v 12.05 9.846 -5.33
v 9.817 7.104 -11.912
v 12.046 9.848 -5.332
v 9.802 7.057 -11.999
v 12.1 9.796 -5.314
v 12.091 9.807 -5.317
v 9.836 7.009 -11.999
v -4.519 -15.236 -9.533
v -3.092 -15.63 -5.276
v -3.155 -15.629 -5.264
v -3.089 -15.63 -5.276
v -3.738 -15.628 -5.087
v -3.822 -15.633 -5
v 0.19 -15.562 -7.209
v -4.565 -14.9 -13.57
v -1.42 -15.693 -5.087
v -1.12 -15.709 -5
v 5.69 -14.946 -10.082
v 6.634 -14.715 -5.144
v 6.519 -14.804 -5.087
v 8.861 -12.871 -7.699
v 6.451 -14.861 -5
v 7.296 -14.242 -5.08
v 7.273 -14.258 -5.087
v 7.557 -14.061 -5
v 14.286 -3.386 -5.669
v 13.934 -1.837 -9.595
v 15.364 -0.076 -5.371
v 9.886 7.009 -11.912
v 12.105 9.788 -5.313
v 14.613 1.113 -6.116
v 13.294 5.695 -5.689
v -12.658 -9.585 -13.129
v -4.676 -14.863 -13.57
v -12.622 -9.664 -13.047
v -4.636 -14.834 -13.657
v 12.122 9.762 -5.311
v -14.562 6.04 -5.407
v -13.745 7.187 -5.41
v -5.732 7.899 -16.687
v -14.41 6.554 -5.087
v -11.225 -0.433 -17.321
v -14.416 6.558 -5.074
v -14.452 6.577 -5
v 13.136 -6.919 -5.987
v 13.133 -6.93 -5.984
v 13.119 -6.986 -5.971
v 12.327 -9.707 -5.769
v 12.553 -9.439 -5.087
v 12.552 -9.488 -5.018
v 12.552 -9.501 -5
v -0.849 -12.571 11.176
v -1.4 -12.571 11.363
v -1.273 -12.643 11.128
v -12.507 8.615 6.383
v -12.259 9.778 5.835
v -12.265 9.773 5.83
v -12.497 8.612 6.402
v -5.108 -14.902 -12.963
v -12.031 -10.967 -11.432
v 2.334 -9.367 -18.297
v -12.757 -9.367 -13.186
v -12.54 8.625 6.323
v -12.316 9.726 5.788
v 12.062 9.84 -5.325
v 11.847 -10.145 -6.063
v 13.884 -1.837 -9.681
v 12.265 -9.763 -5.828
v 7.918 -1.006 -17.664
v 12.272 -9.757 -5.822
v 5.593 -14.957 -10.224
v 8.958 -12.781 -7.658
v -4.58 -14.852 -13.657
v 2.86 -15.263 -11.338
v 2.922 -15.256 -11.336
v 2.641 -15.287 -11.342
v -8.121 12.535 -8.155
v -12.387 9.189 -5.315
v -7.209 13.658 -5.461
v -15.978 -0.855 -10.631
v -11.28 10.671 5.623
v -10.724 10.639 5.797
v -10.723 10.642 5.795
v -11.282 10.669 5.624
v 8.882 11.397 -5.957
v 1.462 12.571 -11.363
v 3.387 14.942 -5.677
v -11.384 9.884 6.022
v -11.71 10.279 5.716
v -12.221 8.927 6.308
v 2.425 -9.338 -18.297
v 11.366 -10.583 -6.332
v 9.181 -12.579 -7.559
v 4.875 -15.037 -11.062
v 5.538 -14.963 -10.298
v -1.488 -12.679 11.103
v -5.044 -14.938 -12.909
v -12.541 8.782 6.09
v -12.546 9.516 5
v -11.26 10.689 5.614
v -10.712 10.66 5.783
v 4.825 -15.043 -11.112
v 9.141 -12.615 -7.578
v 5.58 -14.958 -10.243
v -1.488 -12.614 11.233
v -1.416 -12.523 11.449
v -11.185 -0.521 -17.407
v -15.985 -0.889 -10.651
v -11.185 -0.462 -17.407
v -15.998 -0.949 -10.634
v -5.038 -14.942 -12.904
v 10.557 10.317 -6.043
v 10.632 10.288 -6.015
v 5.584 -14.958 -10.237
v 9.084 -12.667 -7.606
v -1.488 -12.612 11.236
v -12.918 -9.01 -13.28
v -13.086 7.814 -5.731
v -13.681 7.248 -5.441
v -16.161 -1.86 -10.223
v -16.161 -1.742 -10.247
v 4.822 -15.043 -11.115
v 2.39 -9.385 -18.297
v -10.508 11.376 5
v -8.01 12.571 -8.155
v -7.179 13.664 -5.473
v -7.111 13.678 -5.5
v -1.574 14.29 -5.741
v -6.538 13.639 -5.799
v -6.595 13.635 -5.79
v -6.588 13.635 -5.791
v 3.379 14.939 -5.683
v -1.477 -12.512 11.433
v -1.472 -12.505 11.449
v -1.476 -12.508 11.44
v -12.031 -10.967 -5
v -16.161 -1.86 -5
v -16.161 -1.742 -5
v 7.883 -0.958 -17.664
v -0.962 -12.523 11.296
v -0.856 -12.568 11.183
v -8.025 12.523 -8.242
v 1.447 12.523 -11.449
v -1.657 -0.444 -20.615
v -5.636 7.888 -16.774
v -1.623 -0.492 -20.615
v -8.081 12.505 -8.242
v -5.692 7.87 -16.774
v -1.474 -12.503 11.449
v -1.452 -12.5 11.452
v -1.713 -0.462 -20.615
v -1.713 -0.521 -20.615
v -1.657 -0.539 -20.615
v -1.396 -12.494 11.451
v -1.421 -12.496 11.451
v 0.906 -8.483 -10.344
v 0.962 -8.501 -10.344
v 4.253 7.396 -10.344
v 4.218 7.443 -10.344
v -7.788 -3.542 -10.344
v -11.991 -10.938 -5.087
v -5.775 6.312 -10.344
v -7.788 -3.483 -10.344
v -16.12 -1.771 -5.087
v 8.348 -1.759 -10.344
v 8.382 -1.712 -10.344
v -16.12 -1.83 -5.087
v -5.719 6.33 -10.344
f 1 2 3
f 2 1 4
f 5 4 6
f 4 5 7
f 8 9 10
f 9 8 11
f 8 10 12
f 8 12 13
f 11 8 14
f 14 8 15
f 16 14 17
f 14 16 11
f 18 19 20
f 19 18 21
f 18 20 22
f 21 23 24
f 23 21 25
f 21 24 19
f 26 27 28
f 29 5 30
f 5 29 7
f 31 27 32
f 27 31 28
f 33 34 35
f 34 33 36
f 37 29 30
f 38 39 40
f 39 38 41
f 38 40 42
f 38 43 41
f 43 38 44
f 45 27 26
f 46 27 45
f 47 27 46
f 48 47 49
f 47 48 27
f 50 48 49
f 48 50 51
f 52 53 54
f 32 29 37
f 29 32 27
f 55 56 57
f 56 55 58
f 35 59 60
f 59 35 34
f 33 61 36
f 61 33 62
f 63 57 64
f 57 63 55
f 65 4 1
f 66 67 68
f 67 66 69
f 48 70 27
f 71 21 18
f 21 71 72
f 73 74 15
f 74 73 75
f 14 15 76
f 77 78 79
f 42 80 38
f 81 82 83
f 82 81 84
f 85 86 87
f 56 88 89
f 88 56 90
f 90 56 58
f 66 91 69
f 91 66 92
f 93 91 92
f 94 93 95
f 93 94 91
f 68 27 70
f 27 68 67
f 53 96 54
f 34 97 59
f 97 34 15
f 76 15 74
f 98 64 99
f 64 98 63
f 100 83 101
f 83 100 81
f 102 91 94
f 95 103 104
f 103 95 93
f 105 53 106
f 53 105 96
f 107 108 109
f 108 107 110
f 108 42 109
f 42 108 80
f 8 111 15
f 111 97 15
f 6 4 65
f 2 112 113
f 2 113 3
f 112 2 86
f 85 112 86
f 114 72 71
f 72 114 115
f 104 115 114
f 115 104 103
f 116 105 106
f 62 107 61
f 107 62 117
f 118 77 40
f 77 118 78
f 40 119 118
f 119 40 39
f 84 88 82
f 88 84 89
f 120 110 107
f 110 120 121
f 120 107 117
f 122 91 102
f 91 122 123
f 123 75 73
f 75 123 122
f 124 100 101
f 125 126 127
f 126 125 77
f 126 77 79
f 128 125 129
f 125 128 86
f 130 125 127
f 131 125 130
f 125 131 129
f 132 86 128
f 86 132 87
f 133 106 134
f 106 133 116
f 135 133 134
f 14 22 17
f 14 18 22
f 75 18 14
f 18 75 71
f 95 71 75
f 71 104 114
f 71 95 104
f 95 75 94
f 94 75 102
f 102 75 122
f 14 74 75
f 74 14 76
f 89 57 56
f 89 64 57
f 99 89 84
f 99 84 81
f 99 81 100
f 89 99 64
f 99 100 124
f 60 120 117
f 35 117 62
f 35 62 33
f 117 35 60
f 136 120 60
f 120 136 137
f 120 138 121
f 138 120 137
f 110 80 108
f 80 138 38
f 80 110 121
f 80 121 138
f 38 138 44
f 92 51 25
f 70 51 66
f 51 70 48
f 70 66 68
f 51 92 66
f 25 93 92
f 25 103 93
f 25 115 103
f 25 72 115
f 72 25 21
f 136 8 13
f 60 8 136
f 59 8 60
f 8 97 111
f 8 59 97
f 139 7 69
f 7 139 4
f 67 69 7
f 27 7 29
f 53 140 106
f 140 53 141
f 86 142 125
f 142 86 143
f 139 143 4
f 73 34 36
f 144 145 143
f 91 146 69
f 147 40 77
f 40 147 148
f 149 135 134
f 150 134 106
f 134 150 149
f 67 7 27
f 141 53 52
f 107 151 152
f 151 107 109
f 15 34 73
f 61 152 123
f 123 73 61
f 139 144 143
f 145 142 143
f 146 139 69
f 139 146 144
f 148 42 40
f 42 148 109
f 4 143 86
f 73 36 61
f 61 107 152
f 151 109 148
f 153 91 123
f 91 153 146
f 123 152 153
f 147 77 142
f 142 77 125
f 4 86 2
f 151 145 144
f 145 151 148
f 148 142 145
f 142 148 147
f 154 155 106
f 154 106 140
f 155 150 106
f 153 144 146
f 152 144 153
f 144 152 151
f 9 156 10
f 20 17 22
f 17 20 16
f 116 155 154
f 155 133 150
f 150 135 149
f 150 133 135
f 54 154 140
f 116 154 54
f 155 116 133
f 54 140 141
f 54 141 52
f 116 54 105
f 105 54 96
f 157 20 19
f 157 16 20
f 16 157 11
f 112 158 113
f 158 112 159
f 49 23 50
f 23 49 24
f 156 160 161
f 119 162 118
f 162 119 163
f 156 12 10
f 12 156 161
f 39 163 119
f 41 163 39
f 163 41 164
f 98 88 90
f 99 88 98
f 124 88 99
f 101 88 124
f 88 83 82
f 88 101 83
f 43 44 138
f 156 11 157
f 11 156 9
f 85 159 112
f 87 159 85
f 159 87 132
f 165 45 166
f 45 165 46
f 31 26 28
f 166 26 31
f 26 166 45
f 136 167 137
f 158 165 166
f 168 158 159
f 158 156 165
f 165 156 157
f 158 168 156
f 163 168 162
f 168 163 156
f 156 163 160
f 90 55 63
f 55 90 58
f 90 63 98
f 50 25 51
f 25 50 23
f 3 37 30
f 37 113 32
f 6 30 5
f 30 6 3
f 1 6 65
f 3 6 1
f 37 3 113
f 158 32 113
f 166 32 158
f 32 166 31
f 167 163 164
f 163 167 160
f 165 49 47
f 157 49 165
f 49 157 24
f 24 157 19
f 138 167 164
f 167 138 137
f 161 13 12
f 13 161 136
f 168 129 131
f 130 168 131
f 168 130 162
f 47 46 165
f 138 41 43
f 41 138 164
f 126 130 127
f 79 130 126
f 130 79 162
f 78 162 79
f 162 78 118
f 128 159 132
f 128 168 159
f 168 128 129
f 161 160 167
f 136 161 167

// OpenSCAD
// Auto-generated OpenSCAD file

    inner_points = 10*[[1.4067368092918164, -0.7994532745154926, 0.4999999999998308], [1.4067368092915926, -0.7994532745156754, -0.5000000000001692], [-1.4067368092915926, 0.7994532745156754, 0.5000000000001692], [-1.4067368092918164, 0.7994532745154926, -0.4999999999998308], [1.6079808299870764, 0.18008786506691687, 0.4999999999996069], [1.6079808299868528, 0.18008786506673424, -0.500000000000393], [0.6681671406727039, -1.4736304356503493, 0.5000000000001192], [0.6681671406724802, -1.473630435650532, -0.4999999999998807], [-0.6681671406724802, 1.473630435650532, 0.4999999999998807], [-0.6681671406727039, 1.4736304356503493, -0.5000000000001192], [-1.6079808299868528, -0.18008786506673424, 0.500000000000393], [-1.6079808299870764, -0.18008786506691687, -0.4999999999996069], [1.1950308268855827, 1.090841561155204, 0.4999999999995332], [1.1950308268853584, 1.0908415611550215, -0.5000000000004668], [-0.3256196655175062, -1.5849308572230525, 0.5000000000003623], [-0.32561966551773036, -1.584930857223235, -0.4999999999996378], [0.32561966551773036, 1.584930857223235, 0.4999999999996378], [0.3256196655175062, 1.5849308572230525, -0.5000000000003623], [-1.1950308268853584, -1.0908415611550215, 0.5000000000004668], [-1.1950308268855827, -1.090841561155204, -0.4999999999995332], [0.9279252557809003, -1.0165539388954856, 1.3506508083520177], [-1.3482227148786563, 0.2769886316881294, 1.3506508083522912], [1.2535449212985186, 0.5683769183276581, 1.3506508083516553], [-0.15319188799318584, 1.3678301928432421, 1.3506508083518245], [-0.6800555742060643, -1.1966418039623115, 1.3506508083524107], [0.8332474622002755, -0.17118838888009527, 1.8763819204710181], [-0.5734893470914291, 0.6282648856354888, 1.8763819204711873], [0.0946777935811629, -0.845365550014952, 1.8763819204713068], [-0.7747333677866893, -0.35127625394692097, 1.8763819204714112], [0.42029745909878125, 0.7395653072081917, 1.8763819204709444], [0.8332474621996254, -0.17118838888062501, -1.0257311121192891], [-0.5734893470920791, 0.6282648856349591, -1.02573111211912], [0.09467779358051293, -0.8453655500154817, -1.0257311121190005], [-0.7747333677873394, -0.3512762539474507, -1.0257311121188961], [0.42029745909813115, 0.739565307207662, -1.0257311121193629]];

    outer_points = 10*[[1.3833782883880748, -0.18366781795367643, -0.9594605946126766], [1.6817061295863125, 0.18366781795367643, -0.078515062948806], [-1.6817061295863125, -0.18366781795367643, 0.078515062948806], [-1.3833782883880748, 0.18366781795367643, 0.9594605946126766], [1.2027457527591328, -1.0682345020066348, -0.5294447012601022], [1.5010735939573705, -0.7008988660992819, 0.35150083040376845], [0.9786317893777532, 0.7008988660992819, -1.191240777118519], [1.276959630575991, 1.0682345020066348, -0.31029524545464815], [-1.276959630575991, -1.0682345020066348, 0.31029524545464815], [-0.9786317893777532, -0.7008988660992819, 1.191240777118519], [-1.5010735939573705, 0.7008988660992819, -0.35150083040376845], [-1.2027457527591328, 1.0682345020066348, 0.5294447012601022], [0.5057296716271069, -1.6149267780671528, -0.0654445526188289], [0.8040575128253447, -1.2475911421598, 0.8155009790450418], [0.14310566152258547, 1.2475911421598, -1.1362530969790507], [0.44143350272082327, 1.6149267780671528, -0.2553075653151802], [-0.44143350272082327, -1.6149267780671528, 0.2553075653151802], [-0.14310566152258547, -1.2475911421598, 1.1362530969790507], [-0.8040575128253447, 1.2475911421598, -0.8155009790450418], [-0.5057296716271069, 1.6149267780671528, 0.0654445526188289], [0.7868025461164767, -0.10055192633997795, -1.7577018690995023], [-1.692902837218647, -0.10055192633997795, -0.9179619223847519], [0.49453296399477237, -1.5318108864534543, -1.0619215379523868], [-1.0380092449924212, -1.5318108864534543, -0.5429337091716455], [-0.5651071272417749, 0.7840147577129805, -1.6687299336713355], [0.23746592489998974, -0.9337501643704182, -1.8210262146028207], [-1.2950762840872039, -0.9337501643704182, -1.3020383858220792], [-0.16728057411033165, -0.04918348031745989, -2.0528063971086628], [-1.1144437484582619, -0.04918348031745989, -1.7320542791746538], [-0.4595501562320361, -1.4804424404309362, -1.3570260659615474], [1.1032470408259272, 0.13229937193115845, 0.7355772938410956], [-0.42929516816126634, 0.13229937193115845, 1.2545651226218368], [0.6985005418156058, 1.0168660559841167, 0.5037971113352535], [-0.2486626325323244, 1.0168660559841167, 0.8245492292692624], [0.4062309596939014, -0.41439290412935936, 1.1995774424823689]];

    // Convex hull for inner set (I)
    module inner_hull() {
        hull() {
            for (p = inner_points) {
                translate(p) sphere(r=0.1);
            }
        }
    }

    // Convex hull for outer set (O) minus inner hull (O \ I)
    module outer_minus_inner() {
        difference() {
            hull() {
                for (p = outer_points) {
                    translate(p) sphere(r=0.1);
                }
            }
            inner_hull(); // Subtract inner hull
        }
    }

    // Convex hull for outer set (O) minus all translated inner hulls
    module outer_minus_AllTranslationInner() {
        difference() {
            hull() {
                for (p = outer_points) {
                    translate(p) sphere(r=0.1);
                }
            }
            hull() {
                translate([0,0,50]) inner_hull();
                translate([0,0,-50]) inner_hull();
            }; // Subtract translated inner hulls
        }
    }

    // Difference between outer_minus_inner and outer_minus_AllTranslationInner
    module outer_minus_inner_diff() {
        difference() {
            // Outer minus inner
            difference() {
                hull() {
                    for (p = outer_points) {
                        translate(p) sphere(r=0.1);
                    }
                }
                inner_hull();
            }

            // Subtract Outer minus AllTranslationInner
            difference() {
                hull() {
                    for (p = outer_points) {
                        translate(p) sphere(r=0.1);
                    }
                }
                hull() {
                    translate([0,0,50]) inner_hull();
                    translate([0,0,-50]) inner_hull();
                };
            }
        }
    }

    // Rendering all with colors applied
    color([1, 1, 0, 1]) outer_minus_inner_diff(); // Opaque yellow
    
